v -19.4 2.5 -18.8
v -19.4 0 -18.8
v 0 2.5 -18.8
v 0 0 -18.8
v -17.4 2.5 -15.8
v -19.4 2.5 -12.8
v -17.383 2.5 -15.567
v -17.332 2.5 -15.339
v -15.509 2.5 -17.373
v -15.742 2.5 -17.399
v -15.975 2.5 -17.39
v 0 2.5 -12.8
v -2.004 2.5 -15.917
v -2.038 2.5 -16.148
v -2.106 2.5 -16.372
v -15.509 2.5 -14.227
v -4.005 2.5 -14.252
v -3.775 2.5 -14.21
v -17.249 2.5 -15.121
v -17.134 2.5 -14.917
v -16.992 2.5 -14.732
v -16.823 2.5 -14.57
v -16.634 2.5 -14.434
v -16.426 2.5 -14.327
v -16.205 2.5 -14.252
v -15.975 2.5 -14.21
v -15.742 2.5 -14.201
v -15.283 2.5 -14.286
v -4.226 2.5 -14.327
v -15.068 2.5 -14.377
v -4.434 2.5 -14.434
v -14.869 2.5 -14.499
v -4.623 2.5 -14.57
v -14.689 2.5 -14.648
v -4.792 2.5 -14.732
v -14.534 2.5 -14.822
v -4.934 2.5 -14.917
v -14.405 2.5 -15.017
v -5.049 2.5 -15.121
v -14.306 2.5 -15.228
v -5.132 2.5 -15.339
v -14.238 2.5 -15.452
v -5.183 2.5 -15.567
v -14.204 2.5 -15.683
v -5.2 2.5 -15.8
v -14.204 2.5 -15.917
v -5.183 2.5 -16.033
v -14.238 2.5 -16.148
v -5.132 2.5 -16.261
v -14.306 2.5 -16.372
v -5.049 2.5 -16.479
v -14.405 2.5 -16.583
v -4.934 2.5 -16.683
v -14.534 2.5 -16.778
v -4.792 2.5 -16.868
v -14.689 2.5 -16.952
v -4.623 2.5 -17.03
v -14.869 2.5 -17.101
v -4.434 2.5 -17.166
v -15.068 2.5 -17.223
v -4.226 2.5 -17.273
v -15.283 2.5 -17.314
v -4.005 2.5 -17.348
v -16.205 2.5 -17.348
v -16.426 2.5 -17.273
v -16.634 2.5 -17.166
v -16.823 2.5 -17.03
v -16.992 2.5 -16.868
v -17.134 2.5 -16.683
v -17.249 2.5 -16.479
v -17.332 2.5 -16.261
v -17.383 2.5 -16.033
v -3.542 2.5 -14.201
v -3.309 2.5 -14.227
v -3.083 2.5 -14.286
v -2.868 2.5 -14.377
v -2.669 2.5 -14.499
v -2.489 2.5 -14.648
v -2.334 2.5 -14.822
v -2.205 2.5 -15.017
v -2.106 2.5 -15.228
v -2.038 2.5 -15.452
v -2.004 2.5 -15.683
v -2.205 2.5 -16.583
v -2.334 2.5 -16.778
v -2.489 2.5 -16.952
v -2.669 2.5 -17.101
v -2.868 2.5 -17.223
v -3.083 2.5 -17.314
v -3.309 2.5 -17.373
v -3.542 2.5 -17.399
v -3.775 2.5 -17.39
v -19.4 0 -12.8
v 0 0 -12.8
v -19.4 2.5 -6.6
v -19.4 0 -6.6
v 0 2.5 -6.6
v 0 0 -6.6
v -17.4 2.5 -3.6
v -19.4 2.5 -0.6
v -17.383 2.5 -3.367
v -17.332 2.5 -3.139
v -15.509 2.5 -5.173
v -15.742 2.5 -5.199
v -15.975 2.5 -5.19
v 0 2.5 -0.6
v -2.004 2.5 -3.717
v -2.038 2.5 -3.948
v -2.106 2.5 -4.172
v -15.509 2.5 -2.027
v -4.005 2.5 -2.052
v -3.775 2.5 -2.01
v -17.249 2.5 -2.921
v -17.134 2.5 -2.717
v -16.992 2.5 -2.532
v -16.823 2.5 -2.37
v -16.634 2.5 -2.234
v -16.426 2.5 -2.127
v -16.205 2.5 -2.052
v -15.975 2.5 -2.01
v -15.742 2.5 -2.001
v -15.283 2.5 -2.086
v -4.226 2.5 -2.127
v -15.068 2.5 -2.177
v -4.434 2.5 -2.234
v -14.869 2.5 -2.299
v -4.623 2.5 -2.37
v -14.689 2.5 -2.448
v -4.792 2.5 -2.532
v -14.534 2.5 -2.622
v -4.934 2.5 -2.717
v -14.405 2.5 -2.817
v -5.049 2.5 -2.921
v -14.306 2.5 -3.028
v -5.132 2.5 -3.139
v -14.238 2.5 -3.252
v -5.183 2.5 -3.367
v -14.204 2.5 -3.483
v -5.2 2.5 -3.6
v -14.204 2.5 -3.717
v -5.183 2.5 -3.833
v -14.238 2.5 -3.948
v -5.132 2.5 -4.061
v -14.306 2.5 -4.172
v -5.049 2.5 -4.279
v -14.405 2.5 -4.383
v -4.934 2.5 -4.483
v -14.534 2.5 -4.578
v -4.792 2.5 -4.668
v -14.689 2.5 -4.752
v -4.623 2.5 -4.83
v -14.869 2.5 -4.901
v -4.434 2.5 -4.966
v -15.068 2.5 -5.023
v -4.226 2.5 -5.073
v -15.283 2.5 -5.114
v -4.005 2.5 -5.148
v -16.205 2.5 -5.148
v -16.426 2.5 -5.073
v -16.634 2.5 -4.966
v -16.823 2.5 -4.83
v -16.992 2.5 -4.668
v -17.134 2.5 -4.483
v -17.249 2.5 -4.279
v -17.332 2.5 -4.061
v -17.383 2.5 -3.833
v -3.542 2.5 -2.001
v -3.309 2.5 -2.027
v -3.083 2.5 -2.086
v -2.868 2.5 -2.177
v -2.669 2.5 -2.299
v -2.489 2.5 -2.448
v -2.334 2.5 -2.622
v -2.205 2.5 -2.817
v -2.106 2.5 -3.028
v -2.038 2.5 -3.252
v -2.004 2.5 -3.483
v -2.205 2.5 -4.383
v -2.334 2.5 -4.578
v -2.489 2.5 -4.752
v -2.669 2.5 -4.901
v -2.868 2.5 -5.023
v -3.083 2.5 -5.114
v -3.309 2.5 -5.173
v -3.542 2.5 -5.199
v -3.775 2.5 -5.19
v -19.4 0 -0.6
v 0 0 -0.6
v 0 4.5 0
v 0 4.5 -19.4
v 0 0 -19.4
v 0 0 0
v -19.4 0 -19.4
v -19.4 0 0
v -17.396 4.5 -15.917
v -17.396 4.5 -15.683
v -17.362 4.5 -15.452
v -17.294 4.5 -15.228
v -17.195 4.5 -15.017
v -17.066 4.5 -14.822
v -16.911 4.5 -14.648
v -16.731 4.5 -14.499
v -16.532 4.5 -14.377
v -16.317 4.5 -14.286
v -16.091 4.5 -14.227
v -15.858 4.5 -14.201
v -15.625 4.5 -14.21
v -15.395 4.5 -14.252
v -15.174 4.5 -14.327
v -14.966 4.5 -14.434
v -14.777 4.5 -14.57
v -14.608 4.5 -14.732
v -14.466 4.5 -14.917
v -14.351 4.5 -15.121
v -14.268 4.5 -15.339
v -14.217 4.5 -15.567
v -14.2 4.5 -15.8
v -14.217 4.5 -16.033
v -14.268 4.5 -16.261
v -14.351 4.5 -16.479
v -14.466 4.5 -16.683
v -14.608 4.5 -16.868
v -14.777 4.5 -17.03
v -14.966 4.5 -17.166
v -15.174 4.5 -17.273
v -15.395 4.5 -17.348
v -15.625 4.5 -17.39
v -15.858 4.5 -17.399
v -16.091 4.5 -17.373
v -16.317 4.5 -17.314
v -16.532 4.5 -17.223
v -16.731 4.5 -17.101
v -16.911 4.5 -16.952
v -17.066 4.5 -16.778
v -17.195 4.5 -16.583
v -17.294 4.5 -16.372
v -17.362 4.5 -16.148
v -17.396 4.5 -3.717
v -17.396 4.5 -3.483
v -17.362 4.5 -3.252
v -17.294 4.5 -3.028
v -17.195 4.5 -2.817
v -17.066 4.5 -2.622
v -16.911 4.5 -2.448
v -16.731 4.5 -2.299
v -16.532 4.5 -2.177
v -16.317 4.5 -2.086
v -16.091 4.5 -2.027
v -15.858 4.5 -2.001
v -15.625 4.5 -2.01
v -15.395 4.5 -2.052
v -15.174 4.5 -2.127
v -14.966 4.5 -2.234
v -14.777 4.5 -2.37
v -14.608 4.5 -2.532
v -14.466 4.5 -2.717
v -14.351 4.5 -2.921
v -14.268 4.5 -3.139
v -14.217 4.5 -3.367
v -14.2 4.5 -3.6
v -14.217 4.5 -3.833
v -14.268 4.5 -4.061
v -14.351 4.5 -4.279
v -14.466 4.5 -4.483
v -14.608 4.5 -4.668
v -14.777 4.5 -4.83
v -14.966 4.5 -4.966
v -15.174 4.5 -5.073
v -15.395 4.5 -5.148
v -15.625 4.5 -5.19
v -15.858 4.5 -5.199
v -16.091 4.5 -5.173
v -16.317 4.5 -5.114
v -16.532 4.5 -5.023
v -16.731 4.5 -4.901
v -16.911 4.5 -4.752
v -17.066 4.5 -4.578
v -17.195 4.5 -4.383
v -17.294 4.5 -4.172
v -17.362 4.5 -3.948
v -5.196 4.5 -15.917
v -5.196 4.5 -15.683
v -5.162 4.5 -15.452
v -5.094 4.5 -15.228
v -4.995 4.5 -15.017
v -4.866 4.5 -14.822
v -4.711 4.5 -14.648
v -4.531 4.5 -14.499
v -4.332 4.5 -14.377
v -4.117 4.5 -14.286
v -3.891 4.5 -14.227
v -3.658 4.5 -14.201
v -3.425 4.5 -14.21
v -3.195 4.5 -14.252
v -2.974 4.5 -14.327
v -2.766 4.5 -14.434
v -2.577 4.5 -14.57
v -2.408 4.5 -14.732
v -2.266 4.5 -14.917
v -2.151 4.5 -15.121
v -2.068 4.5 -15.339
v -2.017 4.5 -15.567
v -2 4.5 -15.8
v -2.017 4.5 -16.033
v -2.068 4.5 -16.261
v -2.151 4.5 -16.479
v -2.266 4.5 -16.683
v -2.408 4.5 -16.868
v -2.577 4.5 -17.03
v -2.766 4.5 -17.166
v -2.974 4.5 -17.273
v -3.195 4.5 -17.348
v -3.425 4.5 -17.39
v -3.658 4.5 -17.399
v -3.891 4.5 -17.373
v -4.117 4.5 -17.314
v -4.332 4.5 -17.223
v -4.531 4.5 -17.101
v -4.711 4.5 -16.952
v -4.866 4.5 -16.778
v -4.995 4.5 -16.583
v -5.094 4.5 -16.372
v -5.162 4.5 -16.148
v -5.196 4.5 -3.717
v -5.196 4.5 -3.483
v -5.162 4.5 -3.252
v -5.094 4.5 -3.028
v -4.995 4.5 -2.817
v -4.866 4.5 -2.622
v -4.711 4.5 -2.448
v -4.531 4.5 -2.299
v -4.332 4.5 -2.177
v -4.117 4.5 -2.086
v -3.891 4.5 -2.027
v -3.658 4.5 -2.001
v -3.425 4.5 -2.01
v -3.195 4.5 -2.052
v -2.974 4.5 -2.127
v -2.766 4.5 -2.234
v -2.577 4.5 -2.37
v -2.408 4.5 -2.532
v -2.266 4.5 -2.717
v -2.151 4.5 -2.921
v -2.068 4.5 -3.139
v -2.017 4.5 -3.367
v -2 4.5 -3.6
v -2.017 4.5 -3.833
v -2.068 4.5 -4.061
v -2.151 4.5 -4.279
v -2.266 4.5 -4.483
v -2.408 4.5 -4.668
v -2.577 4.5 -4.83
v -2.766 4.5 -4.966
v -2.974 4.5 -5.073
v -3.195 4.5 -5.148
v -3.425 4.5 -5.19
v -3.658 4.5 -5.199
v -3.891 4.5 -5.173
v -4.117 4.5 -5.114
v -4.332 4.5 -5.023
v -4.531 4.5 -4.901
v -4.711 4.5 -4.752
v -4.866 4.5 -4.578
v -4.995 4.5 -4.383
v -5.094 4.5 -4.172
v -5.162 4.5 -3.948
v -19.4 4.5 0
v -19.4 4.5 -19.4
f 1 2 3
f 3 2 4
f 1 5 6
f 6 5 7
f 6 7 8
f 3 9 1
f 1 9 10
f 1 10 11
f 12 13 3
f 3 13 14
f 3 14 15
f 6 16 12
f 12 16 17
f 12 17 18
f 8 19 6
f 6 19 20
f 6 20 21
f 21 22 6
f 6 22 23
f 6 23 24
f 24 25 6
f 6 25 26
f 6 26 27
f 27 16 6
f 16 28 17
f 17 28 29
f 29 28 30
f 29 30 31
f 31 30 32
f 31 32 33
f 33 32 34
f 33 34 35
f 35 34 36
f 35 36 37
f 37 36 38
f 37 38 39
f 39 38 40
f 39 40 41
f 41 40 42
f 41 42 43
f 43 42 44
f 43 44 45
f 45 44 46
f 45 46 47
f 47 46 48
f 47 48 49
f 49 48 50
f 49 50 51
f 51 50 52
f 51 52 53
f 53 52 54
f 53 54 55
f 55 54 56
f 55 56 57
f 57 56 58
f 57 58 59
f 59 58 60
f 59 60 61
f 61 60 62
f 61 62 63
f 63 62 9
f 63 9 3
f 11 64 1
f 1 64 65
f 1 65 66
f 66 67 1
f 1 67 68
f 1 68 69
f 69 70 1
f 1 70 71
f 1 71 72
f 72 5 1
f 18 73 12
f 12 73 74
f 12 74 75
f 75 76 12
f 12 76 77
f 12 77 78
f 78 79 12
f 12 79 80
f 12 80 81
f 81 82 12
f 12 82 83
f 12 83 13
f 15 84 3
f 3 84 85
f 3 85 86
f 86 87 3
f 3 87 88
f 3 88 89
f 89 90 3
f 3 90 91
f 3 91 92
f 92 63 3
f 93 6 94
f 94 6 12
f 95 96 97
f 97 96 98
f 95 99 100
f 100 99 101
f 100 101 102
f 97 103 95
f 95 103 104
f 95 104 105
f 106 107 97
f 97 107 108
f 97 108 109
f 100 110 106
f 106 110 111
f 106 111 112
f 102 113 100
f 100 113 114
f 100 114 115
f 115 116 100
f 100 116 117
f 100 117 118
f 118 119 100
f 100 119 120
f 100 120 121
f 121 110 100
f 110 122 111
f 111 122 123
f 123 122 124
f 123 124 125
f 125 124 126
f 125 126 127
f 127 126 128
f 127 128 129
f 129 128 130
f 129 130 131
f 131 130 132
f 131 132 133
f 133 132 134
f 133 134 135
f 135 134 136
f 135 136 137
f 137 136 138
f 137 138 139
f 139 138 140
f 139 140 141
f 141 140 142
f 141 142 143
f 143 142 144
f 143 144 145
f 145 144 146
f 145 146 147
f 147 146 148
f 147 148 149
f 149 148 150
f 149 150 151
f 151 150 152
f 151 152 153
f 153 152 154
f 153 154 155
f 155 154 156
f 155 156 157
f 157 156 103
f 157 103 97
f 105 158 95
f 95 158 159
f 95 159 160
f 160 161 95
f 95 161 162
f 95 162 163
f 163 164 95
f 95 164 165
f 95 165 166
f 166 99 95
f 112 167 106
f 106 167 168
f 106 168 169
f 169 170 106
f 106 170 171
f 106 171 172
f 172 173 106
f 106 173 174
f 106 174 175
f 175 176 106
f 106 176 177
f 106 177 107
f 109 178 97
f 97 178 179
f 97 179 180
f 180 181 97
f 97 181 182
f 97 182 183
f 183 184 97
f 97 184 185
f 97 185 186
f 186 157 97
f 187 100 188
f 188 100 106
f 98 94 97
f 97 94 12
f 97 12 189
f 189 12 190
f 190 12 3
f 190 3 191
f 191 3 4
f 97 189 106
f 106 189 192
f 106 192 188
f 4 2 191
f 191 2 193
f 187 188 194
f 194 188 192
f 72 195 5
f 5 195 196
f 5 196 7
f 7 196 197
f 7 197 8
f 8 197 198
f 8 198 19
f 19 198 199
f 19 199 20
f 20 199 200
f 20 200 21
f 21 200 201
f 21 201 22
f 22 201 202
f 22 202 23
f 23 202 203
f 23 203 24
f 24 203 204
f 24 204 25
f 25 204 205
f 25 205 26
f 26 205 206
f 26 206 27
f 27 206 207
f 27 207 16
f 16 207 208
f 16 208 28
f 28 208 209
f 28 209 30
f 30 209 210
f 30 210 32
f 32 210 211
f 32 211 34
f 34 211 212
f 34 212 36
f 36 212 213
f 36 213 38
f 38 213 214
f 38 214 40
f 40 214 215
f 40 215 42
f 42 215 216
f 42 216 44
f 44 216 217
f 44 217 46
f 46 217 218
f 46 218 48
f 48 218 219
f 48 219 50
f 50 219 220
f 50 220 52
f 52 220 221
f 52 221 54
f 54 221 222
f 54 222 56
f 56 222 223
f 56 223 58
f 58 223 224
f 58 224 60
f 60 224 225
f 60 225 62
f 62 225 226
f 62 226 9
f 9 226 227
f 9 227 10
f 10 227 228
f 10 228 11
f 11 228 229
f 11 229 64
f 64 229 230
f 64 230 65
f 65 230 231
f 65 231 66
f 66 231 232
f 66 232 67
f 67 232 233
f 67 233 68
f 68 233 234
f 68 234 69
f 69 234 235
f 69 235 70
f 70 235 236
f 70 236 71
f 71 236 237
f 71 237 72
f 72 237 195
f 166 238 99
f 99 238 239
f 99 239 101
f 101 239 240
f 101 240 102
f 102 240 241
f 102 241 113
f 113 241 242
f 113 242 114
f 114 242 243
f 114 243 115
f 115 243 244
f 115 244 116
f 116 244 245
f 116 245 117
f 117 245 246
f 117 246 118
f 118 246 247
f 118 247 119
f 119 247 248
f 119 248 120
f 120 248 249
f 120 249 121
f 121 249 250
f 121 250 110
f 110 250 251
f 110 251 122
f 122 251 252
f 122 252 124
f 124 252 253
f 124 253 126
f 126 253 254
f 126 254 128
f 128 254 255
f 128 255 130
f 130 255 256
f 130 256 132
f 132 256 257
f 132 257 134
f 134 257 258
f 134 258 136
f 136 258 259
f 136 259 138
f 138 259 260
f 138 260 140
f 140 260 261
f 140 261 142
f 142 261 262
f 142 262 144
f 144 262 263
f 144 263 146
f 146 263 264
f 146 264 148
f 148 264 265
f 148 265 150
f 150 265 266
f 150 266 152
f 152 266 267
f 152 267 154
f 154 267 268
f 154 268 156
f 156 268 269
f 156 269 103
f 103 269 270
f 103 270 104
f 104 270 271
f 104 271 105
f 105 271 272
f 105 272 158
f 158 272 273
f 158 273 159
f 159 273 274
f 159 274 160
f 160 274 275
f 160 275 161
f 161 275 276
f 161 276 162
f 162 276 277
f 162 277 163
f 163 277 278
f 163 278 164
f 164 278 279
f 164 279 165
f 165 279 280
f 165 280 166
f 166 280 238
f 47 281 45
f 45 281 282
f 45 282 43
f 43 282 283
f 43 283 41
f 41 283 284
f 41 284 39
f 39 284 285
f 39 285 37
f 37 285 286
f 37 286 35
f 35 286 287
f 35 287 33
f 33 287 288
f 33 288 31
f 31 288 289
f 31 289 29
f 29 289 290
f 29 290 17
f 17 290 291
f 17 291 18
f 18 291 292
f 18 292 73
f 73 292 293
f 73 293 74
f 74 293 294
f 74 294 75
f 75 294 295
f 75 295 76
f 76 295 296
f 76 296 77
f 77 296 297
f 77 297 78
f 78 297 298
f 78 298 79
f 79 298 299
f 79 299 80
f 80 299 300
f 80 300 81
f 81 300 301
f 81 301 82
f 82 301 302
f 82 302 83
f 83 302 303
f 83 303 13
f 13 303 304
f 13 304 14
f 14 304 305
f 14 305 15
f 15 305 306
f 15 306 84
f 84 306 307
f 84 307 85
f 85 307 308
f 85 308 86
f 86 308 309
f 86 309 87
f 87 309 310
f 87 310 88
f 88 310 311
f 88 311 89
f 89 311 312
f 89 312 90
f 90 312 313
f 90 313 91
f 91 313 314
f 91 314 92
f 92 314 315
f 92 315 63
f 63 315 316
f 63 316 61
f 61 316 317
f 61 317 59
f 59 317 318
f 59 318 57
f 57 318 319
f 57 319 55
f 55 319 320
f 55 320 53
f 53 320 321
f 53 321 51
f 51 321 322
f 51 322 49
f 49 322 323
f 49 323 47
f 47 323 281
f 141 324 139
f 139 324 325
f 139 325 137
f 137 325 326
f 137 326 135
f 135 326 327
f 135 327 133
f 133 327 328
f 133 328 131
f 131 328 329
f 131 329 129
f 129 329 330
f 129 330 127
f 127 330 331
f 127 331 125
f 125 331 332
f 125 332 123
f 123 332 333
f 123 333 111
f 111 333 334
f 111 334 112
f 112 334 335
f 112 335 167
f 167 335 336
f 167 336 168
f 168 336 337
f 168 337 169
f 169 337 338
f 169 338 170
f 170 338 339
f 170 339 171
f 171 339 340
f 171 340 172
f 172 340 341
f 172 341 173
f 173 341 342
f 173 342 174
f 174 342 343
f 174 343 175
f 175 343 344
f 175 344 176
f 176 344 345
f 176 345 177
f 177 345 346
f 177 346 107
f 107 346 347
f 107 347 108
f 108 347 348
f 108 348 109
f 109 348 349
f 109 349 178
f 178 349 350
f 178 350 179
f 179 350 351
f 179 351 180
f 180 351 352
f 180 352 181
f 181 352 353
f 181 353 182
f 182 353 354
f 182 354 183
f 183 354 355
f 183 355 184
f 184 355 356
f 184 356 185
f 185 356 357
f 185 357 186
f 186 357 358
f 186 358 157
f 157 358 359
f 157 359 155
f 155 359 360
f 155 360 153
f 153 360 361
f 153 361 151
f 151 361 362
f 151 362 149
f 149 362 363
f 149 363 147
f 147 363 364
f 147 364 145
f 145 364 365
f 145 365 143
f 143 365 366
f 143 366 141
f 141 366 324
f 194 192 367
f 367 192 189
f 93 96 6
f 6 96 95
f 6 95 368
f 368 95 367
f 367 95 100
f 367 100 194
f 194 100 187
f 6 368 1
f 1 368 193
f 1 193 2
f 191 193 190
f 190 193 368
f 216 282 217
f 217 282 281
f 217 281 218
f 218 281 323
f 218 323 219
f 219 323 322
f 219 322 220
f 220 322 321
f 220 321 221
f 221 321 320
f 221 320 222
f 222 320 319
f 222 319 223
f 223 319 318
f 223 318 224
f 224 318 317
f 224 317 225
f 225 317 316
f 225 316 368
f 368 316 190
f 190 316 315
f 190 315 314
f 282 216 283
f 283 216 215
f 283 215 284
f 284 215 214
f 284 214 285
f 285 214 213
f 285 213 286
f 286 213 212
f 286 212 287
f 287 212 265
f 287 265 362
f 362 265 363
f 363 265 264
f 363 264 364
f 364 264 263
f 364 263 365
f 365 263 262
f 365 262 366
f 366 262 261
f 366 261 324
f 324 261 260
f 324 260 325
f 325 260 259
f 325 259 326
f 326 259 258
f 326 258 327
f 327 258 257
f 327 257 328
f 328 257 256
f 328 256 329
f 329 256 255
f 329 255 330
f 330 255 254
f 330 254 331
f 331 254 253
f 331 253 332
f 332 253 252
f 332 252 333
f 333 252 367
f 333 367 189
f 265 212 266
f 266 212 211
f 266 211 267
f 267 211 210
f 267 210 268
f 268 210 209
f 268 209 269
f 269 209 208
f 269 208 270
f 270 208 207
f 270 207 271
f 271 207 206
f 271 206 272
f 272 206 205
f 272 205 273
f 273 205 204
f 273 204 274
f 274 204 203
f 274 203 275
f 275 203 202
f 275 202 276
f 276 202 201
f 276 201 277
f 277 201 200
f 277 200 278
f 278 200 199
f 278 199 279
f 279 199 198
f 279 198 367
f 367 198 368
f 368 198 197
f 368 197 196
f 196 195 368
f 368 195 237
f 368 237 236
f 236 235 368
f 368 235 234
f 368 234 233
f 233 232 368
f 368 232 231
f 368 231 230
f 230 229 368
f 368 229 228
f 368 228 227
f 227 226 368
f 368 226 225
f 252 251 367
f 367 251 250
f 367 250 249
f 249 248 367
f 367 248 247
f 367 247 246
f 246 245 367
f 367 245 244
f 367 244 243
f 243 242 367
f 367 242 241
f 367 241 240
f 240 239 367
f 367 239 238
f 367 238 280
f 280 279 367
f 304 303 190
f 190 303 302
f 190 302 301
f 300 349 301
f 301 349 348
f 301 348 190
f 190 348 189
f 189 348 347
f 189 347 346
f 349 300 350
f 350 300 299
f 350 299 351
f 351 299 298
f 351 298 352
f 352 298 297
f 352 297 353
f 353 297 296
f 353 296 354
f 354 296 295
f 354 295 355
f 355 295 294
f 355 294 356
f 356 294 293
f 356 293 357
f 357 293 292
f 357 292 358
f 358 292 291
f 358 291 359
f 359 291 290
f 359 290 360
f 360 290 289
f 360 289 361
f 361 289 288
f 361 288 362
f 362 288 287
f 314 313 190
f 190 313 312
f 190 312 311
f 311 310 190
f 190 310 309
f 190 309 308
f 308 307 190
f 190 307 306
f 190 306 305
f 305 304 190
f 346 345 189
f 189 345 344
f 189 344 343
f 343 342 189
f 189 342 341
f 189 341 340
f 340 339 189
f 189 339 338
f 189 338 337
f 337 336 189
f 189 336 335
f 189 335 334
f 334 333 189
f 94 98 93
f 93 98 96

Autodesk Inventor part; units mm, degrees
ref_plane "YZ Plane" through (0, 0, 0) normal (1, 0, 0) x (0, 1, 0)
ref_plane "XZ Plane" through (0, 0, 0) normal (0, 1, 0) x (-1, 0, 0)
ref_plane "XY Plane" through (0, 0, 0) normal (0, 0, 1) x (1, 0, 0)
sketch "Sketch1" plane through (0, 0, 0) normal (0, 1, 0) x (-1, 0, 0)
  line L0 (0, 0) -> (19.4, 0)
  line L1 (19.4, 0) -> (19.4, -19.4)
  line L2 (19.4, -19.4) -> (0, -19.4)
  line L3 (0, -19.4) -> (0, 0)
  dimension "d0" = 19.4
  dimension "d1" = 19.4
extrude "Extrusion1" add sketch "Sketch1" along normal blind 4.5
sketch "Sketch2" plane through (0, 4.5, 0) normal (0, 1, 0) x (1, 0, 0)
  circle A0 centre (-3.6, 3.6) radius 1.6
  line L0 (-19.4, 0) -> (0, 0) projected
  line L1 (0, 0) -> (0, 19.4) projected
  dimension "d4" = 3.2
  dimension "d5" = 3.6
  dimension "d6" = 3.6
extrude "Extrusion2" cut sketch "Sketch2" against normal through all
pattern_linear "Rectangular Pattern1" count 2 spacing 12.2 along (0, 0, -1) count 2 spacing 12.2 along (-1, 0, 0) of "Extrusion2"
sketch "Sketch3" plane through (0, 0, 0) normal (1, 0, 0) x (0, 0, -1)
  line L0 (0.6, 2.5) -> (6.6, 2.5)
  line L1 (6.6, 2.5) -> (6.6, 0)
  line L2 (6.6, 0) -> (0.6, 0)
  line L3 (0.6, 0) -> (0.6, 2.5)
  line L4 (0, 0) -> (0, 4.5) projected
  line L5 (0, 0) -> (19.4, 0) projected
  line L6 (12.8, 2.5) -> (18.8, 2.5)
  line L7 (18.8, 2.5) -> (18.8, 0)
  line L8 (18.8, 0) -> (12.8, 0)
  line L9 (12.8, 0) -> (12.8, 2.5)
  line L10 (19.4, 0) -> (19.4, 4.5) projected
  dimension "d15" = 6
  dimension "d16" = 2.5
  dimension "d17" = 0.6
  dimension "d18" = 6
  dimension "d19" = 2.5
  dimension "d20" = 0.6
extrude "Extrusion3" cut sketch "Sketch3" against normal through all
properties part number "INTERFACE_MANIFOLD_KORK"
